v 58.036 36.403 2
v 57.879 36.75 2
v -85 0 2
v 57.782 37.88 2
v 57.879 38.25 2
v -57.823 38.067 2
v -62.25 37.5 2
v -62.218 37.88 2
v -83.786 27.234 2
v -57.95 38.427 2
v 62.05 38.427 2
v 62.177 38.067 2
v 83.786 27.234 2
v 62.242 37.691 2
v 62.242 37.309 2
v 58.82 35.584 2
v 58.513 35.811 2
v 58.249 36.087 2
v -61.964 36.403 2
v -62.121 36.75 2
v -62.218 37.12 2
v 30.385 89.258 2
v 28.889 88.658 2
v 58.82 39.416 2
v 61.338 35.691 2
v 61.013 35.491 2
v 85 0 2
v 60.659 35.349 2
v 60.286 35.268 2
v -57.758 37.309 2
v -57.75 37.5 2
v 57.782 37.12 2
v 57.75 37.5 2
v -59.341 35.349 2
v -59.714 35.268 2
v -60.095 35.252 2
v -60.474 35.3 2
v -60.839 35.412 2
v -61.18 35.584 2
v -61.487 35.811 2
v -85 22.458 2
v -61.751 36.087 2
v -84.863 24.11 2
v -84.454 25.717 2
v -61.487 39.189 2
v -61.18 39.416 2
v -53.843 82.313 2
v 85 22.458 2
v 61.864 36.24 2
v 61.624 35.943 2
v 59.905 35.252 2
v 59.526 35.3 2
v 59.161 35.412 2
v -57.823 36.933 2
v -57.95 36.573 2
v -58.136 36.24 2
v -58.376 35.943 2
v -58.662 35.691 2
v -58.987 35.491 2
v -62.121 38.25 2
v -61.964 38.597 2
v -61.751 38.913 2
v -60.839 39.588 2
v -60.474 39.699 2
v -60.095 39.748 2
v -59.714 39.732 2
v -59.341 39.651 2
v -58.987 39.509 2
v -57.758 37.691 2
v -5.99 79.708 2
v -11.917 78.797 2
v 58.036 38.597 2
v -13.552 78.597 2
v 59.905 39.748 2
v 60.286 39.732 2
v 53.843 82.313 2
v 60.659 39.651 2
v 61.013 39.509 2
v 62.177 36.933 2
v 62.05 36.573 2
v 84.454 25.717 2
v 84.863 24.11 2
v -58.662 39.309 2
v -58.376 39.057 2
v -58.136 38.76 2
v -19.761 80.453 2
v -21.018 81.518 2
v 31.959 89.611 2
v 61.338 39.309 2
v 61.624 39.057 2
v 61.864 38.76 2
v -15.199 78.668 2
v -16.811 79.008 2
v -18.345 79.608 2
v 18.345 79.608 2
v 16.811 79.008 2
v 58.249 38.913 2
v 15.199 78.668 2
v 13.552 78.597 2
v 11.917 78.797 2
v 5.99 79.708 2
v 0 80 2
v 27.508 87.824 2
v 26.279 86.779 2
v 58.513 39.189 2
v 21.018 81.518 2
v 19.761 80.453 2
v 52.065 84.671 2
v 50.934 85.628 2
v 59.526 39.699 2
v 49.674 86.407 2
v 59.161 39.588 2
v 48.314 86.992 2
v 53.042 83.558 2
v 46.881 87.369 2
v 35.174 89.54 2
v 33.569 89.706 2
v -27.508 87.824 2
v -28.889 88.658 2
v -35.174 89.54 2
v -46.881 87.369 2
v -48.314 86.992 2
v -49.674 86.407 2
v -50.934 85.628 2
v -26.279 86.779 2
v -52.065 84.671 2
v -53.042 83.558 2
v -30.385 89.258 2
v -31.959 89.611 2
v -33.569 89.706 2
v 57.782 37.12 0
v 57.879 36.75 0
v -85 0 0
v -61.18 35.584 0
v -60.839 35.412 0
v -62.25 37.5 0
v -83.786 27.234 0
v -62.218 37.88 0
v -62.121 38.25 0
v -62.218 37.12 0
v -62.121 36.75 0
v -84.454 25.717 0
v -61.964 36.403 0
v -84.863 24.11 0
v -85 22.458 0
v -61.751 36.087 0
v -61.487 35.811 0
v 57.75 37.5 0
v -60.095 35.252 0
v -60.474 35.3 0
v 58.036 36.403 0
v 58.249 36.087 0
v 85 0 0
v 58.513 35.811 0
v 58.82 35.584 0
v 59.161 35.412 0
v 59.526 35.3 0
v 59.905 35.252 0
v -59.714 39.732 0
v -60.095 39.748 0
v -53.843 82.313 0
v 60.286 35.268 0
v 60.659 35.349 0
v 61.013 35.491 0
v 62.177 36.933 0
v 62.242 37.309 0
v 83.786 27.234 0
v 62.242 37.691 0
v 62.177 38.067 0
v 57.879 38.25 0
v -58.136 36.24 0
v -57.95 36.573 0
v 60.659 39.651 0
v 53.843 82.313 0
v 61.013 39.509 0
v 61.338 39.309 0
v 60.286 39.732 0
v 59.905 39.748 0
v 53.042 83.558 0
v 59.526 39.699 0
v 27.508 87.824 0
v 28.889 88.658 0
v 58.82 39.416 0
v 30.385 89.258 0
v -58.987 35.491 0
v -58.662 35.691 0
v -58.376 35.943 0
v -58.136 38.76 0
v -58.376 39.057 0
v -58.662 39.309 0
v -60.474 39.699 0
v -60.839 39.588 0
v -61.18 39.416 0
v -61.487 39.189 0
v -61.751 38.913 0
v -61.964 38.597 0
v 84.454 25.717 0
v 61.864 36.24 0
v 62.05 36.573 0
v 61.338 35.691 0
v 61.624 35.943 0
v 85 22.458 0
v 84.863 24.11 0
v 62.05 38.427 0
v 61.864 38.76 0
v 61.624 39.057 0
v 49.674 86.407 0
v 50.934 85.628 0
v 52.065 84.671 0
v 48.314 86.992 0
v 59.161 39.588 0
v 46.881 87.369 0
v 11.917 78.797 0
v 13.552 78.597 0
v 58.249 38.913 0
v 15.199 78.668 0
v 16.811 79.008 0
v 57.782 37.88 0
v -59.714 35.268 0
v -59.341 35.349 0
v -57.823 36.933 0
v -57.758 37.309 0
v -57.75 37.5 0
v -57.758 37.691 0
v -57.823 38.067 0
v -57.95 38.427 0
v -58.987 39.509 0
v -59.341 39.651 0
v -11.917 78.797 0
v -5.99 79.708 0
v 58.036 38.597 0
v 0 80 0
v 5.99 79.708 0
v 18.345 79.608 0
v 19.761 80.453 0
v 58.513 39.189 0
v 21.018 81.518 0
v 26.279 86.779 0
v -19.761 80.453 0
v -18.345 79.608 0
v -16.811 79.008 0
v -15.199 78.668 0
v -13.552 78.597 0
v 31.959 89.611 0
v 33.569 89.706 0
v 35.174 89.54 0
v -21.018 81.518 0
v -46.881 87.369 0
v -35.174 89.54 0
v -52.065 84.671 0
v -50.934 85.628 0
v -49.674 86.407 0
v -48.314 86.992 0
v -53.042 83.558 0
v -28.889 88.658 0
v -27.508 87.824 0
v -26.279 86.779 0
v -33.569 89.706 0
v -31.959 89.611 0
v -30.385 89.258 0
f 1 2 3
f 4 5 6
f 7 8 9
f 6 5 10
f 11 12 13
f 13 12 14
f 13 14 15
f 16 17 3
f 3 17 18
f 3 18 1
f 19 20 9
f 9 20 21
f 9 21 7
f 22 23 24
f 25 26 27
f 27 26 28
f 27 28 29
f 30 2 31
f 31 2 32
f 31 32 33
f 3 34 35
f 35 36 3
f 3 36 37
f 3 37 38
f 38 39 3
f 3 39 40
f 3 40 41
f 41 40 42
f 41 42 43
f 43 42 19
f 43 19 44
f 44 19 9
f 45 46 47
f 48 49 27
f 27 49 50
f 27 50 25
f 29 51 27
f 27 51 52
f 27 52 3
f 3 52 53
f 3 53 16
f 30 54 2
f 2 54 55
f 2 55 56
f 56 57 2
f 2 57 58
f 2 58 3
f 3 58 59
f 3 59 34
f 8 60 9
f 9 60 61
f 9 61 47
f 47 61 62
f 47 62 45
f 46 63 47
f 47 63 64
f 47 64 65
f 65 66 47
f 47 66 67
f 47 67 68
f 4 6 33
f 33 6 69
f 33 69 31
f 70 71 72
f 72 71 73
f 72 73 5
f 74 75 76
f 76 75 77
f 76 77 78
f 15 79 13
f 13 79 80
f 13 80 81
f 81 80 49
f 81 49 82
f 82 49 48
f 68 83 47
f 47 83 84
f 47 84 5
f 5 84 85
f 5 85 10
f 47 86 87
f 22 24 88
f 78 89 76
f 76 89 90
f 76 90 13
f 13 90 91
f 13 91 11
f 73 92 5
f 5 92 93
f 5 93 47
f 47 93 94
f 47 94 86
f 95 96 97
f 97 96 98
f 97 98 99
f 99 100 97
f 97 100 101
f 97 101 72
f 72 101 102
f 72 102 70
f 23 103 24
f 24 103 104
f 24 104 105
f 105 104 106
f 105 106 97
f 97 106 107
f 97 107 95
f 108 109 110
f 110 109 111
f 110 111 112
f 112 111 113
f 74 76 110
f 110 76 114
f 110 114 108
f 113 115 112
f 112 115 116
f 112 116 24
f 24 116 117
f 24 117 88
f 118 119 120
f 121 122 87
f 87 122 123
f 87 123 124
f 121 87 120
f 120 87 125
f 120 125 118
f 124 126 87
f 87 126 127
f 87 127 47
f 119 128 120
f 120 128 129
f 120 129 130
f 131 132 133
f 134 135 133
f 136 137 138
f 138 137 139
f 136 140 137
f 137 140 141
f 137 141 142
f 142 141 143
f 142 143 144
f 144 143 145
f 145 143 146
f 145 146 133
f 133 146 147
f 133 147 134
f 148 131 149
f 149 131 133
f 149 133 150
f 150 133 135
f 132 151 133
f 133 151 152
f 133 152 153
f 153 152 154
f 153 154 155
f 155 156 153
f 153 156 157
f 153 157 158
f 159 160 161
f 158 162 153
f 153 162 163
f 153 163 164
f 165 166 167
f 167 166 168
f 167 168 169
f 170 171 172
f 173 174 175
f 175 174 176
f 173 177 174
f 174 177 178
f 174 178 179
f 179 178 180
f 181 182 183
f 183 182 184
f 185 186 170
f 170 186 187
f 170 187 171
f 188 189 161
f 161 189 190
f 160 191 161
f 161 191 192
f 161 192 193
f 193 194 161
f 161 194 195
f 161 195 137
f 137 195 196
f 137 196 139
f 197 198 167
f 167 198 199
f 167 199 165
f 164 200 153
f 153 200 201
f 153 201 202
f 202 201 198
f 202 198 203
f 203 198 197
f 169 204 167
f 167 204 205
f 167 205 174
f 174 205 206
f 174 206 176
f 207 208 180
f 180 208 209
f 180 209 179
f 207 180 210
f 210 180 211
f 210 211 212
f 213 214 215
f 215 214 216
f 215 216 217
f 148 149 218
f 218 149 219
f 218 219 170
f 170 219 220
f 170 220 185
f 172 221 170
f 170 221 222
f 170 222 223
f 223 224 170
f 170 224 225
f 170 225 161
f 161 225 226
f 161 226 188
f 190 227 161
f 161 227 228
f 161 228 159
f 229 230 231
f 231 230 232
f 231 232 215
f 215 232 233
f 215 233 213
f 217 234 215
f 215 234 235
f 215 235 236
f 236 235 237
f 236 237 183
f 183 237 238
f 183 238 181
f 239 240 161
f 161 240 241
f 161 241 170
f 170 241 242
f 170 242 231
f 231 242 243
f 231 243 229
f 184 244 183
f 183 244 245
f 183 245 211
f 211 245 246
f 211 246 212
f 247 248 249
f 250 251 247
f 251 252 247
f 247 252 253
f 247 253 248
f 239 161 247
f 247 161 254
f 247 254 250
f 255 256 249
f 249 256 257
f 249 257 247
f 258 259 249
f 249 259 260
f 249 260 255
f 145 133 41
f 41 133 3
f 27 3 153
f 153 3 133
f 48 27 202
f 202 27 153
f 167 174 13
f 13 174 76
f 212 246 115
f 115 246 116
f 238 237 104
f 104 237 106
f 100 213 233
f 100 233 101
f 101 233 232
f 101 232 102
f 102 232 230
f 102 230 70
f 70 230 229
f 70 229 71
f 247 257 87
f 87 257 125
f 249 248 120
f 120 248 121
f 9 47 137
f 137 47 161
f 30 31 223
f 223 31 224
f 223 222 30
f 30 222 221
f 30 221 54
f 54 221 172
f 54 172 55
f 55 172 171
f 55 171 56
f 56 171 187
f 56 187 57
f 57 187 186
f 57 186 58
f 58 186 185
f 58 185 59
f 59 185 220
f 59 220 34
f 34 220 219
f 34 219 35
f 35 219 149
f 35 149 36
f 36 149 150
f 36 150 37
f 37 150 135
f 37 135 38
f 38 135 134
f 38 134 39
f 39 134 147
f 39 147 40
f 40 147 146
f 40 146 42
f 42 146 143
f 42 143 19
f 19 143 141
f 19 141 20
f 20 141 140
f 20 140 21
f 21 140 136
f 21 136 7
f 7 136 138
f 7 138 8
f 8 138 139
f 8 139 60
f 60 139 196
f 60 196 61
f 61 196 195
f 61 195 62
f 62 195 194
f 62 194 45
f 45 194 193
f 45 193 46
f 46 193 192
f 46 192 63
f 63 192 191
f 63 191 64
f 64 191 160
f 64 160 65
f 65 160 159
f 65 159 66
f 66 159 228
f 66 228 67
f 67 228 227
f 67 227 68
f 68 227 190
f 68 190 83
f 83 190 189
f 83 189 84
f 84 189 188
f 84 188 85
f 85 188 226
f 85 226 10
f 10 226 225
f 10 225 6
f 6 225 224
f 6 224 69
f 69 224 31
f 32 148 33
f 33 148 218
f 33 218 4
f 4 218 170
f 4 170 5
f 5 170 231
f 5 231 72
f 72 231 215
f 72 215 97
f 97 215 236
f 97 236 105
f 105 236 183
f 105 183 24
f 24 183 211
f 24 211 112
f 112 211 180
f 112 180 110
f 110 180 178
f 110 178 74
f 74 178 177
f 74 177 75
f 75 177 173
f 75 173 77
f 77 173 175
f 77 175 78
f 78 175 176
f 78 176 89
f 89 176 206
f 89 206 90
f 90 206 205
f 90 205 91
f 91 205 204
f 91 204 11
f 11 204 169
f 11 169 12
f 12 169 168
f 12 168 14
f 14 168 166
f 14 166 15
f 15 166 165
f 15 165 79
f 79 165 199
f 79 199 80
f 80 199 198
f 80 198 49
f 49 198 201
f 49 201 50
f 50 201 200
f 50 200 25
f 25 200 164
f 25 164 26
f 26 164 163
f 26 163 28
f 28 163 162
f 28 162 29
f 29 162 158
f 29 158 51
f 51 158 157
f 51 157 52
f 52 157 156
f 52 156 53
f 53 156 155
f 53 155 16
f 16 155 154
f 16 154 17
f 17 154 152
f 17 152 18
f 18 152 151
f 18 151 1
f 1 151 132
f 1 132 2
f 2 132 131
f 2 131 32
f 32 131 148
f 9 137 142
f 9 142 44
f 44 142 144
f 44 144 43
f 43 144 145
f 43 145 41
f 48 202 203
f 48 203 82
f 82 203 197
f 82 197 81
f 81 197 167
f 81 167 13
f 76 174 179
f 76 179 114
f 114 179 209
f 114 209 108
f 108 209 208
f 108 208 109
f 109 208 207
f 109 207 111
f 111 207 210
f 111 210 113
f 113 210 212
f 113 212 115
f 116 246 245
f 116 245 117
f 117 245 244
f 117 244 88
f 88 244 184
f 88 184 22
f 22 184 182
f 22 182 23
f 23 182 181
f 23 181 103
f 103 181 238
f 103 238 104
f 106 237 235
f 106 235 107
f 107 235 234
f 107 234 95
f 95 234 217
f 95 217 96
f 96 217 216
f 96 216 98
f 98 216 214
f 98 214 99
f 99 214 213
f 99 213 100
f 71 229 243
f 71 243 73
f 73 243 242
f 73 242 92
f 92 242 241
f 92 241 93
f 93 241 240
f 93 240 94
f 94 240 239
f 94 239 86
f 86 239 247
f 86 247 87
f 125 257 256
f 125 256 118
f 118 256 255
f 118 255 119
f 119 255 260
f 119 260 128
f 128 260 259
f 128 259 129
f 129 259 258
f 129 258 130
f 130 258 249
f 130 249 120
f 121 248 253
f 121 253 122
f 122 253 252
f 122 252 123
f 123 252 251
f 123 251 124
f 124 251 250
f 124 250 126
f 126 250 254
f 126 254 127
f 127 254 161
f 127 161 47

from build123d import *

# Parameters (mm, degrees)
CROQUIS1_R              = 2.25
SALIENTE_EXTRUIR1_DEPTH = 2
REDONDEO1_R             = 10


with BuildPart() as part:
    # Croquis1 → Saliente-Extruir1 (new body)
    with BuildSketch(Plane.XY):
        with BuildLine():
            Line((-85, 0), (85, 0))
            Line((85, 0), (85, 25))
            Line((85, 25), (51.567231643, 86.5))
            Line((51.567231643, 86.5), (30, 90.5))
            Line((30, 90.5), (17, 77.5))
            ThreePointArc((17, 77.5), (8.593451955, 79.385473293), (0, 80))
            ThreePointArc((0, 80), (-8.593451955, 79.385473293), (-17, 77.5))
            Line((-17, 77.5), (-30, 90.5))
            Line((-30, 90.5), (-51.567231643, 86.5))
            Line((-51.567231643, 86.5), (-85, 25))
            Line((-85, 25), (-85, 0))
        make_face()
        with Locations((-60, 37.5)):
            Circle(CROQUIS1_R, mode=Mode.SUBTRACT)
        with Locations((60, 37.5)):
            Circle(CROQUIS1_R, mode=Mode.SUBTRACT)
    extrude(amount=SALIENTE_EXTRUIR1_DEPTH)

    # Redondeo1
    redondeo1_edges = [part.edges().sort_by_distance(p)[0] for p in [
        (-85, 25, 1),
        (-51.567231643, 86.5, 1),
        (-30, 90.5, 1),
        (-17, 77.5, 1),
        (17, 77.5, 1),
        (30, 90.5, 1),
        (51.567231643, 86.5, 1),
        (85, 25, 1),
    ]]
    fillet(redondeo1_edges, radius=REDONDEO1_R)


solid = part.part
